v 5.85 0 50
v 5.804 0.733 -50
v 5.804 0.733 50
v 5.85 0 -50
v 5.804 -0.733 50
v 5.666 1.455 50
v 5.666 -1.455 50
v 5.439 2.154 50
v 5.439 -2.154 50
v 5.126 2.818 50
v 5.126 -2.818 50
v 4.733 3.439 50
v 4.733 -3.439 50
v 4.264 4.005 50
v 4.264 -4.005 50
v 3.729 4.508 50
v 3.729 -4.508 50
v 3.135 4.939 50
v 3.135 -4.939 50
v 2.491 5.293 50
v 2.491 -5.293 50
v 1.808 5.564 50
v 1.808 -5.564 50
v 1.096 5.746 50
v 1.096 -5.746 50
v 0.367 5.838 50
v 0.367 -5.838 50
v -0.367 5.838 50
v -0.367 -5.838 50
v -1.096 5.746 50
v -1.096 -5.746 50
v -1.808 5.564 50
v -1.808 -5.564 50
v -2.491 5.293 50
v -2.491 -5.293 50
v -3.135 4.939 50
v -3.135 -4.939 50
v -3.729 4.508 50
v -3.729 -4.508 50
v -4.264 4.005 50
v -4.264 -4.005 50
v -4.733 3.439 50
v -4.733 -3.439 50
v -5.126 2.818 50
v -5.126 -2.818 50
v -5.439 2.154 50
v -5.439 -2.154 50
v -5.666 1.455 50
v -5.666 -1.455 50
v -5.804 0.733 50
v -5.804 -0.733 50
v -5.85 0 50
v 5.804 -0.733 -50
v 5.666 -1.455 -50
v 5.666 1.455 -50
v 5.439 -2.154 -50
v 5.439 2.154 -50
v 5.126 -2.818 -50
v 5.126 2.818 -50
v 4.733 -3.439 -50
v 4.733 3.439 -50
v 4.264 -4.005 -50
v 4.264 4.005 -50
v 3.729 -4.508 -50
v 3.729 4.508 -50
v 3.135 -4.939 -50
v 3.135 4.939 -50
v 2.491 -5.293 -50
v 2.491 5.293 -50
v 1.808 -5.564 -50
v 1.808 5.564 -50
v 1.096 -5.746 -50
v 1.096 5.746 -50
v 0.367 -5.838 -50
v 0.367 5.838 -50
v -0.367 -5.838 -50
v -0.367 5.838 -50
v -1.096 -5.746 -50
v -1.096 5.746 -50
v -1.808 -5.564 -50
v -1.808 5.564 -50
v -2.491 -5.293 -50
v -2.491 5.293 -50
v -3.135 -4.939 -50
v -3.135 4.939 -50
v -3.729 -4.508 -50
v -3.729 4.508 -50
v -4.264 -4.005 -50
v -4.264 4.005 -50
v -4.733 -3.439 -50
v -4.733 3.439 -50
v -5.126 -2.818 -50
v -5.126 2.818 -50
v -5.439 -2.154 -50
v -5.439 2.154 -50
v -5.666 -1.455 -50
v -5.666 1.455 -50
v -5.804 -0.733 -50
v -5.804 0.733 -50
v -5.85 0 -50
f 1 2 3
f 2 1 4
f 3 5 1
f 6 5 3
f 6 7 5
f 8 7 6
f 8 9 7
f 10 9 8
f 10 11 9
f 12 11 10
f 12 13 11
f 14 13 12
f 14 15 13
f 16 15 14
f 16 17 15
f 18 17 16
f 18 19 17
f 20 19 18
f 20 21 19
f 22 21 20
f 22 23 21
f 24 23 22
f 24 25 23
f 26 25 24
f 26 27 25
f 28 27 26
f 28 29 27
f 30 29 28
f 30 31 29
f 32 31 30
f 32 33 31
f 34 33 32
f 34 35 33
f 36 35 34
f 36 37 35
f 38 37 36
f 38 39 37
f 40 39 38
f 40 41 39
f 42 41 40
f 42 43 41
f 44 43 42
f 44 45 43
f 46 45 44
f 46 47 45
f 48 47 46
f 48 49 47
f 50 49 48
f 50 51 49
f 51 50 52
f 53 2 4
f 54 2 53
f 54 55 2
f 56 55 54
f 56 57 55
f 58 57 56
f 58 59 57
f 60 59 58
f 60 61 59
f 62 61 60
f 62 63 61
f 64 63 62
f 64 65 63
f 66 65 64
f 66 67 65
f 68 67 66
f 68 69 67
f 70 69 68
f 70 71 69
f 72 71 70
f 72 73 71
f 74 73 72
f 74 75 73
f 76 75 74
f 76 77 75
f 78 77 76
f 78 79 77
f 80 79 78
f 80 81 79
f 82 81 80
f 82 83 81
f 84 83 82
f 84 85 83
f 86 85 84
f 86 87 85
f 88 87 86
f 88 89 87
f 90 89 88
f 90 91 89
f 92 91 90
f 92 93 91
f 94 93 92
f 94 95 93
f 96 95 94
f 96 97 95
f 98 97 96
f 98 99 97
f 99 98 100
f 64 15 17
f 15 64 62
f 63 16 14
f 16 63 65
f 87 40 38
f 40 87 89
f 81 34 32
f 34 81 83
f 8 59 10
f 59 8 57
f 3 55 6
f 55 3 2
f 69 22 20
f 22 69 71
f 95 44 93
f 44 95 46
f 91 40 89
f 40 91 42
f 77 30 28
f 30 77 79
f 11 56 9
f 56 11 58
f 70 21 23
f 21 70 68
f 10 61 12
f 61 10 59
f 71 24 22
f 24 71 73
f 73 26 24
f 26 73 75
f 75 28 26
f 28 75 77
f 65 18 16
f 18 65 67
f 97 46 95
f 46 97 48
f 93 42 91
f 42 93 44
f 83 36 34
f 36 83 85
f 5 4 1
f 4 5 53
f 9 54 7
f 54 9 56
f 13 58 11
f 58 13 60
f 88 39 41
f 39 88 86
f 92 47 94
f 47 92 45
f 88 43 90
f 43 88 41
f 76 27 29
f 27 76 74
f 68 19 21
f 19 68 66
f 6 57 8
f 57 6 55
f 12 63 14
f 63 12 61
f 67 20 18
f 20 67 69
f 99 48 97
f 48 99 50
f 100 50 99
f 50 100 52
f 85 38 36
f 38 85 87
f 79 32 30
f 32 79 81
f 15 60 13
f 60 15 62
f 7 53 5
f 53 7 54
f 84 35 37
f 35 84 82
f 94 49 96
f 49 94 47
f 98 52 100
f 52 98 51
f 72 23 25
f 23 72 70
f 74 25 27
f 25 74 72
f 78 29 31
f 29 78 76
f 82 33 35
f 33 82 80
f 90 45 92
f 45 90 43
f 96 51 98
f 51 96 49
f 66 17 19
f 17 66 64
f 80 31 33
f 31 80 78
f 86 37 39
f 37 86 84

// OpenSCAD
$fn = 50;


difference() {
	union() {
		translate(v = [0, 0, -50.0000000000]) {
			cylinder(h = 100, r = 5.8500000000);
		}
	}
	union() {
		translate(v = [0, 0, -100.0000000000]) {
			cylinder(h = 200, r = 0);
		}
	}
}
